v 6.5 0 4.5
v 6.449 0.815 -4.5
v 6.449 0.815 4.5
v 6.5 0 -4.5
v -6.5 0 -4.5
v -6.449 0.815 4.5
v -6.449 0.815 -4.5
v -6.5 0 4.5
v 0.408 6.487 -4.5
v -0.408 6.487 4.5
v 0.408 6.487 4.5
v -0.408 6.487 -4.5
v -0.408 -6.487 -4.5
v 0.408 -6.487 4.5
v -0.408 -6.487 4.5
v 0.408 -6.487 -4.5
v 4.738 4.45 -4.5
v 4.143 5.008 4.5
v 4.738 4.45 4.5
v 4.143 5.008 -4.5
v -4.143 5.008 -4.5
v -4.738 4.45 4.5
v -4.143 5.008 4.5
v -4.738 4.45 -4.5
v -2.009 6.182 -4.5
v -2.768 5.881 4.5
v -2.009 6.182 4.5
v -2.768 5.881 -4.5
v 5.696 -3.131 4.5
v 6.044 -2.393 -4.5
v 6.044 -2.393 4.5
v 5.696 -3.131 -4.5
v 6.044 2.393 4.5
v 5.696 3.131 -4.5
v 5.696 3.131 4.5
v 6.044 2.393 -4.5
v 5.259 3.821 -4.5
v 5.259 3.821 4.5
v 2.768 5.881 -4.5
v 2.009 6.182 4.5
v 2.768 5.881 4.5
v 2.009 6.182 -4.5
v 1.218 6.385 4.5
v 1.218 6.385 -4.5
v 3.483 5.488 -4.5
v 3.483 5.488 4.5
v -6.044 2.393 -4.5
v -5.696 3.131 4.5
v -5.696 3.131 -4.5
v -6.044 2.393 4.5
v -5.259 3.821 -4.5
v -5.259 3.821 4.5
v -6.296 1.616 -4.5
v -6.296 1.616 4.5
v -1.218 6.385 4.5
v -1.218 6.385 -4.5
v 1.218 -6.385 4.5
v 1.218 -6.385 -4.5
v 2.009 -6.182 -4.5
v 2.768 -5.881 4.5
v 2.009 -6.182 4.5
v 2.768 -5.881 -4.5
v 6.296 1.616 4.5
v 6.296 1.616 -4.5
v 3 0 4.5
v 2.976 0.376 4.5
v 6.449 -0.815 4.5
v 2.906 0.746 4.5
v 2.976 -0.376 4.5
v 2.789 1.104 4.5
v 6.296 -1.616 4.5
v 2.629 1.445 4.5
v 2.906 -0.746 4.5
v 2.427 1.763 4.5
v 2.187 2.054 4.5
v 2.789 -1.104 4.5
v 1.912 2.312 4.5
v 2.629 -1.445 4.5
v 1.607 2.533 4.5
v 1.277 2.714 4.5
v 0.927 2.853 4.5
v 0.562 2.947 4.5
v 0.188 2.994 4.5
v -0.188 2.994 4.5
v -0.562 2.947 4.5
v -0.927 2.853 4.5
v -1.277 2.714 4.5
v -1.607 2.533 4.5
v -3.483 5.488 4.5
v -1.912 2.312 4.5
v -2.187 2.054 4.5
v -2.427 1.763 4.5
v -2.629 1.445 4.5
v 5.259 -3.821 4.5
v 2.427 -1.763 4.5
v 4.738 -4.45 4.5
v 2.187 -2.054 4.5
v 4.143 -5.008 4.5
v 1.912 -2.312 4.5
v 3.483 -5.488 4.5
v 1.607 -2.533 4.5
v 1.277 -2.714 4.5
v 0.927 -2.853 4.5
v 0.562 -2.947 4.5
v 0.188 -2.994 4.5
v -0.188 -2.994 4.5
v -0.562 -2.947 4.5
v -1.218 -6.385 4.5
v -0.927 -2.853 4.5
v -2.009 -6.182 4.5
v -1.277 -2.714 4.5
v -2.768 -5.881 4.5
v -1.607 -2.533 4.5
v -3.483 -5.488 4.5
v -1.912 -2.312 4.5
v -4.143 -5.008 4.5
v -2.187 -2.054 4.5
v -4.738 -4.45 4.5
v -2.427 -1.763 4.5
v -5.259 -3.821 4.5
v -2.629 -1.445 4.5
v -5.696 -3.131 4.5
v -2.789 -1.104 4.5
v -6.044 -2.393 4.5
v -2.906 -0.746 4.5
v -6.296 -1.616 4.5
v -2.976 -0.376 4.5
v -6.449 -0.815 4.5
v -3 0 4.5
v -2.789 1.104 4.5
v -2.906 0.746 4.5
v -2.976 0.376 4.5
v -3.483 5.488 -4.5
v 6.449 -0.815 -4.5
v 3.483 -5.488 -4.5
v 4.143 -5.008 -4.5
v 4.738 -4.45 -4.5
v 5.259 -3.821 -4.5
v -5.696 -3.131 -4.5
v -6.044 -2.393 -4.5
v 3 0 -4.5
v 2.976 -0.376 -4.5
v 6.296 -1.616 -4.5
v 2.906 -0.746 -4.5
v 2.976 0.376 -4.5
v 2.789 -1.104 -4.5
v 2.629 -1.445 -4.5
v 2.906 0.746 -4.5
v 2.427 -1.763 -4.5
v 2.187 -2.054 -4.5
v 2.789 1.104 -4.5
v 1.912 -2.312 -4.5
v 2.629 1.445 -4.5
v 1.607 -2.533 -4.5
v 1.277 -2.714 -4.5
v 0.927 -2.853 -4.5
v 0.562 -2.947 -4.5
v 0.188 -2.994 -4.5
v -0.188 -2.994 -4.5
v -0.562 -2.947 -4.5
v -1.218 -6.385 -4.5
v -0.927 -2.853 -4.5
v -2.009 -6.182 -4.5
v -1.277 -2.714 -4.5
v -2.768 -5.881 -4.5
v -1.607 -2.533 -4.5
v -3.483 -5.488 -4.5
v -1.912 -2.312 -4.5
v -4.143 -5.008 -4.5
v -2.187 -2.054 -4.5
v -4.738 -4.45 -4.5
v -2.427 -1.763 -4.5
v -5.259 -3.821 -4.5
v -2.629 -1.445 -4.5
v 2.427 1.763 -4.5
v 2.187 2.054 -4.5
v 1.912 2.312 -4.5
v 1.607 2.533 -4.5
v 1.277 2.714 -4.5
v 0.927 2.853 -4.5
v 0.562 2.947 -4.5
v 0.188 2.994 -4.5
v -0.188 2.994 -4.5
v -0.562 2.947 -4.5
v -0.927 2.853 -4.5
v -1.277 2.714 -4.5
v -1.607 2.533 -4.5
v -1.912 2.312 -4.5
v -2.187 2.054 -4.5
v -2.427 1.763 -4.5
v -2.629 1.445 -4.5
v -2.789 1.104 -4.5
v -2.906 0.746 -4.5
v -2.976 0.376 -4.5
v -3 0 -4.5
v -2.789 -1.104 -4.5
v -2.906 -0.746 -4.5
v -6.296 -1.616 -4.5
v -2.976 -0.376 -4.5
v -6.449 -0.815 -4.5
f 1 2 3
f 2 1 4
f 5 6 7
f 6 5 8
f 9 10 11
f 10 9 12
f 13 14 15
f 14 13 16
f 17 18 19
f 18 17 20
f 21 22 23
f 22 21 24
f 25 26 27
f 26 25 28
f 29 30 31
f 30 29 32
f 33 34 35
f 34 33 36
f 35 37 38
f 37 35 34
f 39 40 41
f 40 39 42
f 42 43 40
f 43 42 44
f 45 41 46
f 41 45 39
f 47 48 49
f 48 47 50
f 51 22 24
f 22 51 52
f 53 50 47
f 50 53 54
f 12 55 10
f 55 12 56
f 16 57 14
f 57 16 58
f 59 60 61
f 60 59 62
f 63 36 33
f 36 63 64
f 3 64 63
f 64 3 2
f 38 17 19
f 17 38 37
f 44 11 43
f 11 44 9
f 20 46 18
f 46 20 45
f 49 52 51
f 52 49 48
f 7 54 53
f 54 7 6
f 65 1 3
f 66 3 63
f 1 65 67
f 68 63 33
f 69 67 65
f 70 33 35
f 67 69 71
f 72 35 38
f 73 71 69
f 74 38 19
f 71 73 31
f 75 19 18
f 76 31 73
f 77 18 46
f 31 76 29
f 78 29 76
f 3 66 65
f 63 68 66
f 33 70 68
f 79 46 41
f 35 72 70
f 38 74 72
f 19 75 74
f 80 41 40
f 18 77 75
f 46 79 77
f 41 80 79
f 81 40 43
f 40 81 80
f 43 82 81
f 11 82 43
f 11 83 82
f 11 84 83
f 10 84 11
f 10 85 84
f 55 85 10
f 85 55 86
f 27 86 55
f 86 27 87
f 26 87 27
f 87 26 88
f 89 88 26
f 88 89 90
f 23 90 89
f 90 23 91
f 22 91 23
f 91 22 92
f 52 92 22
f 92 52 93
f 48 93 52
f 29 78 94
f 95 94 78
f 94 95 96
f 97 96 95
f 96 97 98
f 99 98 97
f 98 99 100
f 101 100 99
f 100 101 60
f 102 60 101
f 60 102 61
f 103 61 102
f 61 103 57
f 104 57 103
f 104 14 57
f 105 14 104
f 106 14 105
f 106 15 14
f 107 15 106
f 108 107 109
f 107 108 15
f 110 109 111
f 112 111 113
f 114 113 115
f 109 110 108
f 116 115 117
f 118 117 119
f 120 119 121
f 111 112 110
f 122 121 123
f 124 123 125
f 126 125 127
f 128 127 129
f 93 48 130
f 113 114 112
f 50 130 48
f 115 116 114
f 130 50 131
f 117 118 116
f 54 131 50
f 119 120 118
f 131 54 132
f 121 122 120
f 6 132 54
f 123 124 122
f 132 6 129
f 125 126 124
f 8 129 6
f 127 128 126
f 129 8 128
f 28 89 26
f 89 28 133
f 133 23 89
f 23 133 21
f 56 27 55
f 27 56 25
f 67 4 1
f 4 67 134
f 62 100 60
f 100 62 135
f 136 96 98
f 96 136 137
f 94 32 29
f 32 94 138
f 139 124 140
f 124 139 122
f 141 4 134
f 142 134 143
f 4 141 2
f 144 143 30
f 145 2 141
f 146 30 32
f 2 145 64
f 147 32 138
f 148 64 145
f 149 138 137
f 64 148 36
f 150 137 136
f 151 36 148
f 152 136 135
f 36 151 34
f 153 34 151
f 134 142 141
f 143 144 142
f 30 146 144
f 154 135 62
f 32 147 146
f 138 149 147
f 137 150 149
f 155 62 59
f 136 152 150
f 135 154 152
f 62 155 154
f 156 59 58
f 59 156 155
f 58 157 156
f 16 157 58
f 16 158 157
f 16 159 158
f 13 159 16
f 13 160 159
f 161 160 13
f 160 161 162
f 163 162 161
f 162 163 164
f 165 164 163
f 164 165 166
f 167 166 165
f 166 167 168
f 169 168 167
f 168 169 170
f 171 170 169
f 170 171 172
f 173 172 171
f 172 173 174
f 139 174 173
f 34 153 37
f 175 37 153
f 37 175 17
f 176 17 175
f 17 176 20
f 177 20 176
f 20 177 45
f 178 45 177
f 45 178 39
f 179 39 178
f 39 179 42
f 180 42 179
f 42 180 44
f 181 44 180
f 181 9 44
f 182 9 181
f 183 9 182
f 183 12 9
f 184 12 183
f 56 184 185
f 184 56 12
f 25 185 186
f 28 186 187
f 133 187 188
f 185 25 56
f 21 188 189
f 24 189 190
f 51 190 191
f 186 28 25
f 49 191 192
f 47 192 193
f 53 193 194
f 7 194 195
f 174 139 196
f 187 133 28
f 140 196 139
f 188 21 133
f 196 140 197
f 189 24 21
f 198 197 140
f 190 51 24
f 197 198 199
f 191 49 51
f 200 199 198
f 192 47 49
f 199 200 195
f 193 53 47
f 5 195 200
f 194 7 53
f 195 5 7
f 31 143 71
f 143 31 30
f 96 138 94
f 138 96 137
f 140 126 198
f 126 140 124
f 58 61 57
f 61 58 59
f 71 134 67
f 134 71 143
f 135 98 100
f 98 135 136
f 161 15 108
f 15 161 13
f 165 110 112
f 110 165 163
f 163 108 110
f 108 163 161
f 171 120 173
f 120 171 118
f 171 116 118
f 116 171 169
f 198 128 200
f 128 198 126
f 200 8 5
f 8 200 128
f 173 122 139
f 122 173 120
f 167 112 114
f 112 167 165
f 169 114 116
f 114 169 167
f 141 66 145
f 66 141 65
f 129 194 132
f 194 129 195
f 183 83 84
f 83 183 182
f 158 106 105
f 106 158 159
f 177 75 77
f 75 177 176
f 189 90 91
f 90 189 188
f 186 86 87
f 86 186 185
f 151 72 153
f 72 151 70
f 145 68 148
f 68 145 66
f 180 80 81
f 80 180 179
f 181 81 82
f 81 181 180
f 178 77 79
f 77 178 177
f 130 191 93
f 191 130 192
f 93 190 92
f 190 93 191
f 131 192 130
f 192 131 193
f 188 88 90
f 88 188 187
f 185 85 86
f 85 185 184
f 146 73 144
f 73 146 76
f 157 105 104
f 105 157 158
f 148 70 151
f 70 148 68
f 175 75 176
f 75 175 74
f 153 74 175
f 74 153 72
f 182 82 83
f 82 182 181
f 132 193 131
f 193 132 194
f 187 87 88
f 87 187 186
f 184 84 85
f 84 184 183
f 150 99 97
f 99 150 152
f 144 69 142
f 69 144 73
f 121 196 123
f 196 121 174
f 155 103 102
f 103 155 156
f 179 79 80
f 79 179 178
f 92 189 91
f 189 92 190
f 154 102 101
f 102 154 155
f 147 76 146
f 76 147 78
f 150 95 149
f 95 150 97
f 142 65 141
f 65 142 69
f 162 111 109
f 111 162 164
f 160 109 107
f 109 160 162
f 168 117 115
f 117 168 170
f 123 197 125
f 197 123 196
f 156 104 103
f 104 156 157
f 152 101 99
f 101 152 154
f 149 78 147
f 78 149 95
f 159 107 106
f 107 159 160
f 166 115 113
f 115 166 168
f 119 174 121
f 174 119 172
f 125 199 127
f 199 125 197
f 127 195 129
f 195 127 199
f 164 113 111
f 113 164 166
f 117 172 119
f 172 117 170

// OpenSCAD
$fn = 50;


difference() {
	union() {
		translate(v = [0, 0, -4.5000000000]) {
			cylinder(h = 9, r = 6.5000000000);
		}
	}
	union() {
		translate(v = [0, 0, -100.0000000000]) {
			cylinder(h = 200, r = 3);
		}
	}
}
